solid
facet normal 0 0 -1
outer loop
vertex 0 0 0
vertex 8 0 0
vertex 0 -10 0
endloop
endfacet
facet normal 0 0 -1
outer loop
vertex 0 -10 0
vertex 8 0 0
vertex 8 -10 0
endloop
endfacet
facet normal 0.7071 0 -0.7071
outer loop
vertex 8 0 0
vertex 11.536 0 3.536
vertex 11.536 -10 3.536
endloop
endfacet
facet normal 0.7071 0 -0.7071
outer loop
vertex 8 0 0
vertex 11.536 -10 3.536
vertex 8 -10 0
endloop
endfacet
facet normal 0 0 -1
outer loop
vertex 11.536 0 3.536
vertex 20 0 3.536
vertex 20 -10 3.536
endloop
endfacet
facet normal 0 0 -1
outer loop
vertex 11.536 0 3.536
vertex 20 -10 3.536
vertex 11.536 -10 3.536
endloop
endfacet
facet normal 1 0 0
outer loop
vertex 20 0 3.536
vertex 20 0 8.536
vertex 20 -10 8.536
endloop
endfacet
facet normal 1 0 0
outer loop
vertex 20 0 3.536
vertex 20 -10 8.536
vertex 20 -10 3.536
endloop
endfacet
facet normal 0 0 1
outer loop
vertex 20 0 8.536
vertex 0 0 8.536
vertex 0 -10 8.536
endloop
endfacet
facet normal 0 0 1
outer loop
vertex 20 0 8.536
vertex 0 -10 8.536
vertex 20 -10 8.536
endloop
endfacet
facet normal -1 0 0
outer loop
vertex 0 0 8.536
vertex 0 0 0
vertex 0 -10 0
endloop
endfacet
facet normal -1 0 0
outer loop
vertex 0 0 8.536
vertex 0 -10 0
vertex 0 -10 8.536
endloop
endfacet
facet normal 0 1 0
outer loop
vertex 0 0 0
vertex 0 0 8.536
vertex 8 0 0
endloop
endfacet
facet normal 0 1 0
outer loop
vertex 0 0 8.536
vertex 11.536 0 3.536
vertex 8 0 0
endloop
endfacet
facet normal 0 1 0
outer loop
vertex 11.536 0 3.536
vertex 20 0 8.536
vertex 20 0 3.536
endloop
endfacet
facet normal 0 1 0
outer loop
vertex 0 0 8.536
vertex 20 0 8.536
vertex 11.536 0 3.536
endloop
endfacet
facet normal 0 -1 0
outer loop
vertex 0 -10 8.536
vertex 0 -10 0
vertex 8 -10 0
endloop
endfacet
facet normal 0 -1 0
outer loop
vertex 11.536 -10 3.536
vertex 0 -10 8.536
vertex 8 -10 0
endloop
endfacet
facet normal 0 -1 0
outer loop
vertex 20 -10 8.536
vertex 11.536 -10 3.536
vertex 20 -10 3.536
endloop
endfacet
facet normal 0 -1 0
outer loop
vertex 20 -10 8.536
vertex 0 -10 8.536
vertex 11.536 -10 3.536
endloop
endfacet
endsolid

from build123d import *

# Parameters (mm, degrees)
PAD_DEPTH            = 10
BODY_PLACEMENT_ANGLE = 90


with BuildPart() as part:
    # Sketch → Pad (new body)
    with BuildSketch(Plane.XY):
        Polygon((0, 0), (8, 0), (11.535534, 3.535534), (20, 3.535534), (20, 8.535534), (0, 8.535534), align=None)
    extrude(amount=PAD_DEPTH)


with BuildPart() as part_1:
    # Body placement: moved
    add(part.part.rotate(Axis((0, 0, 0), (1, 0, 0)), BODY_PLACEMENT_ANGLE))


solid = part_1.part
